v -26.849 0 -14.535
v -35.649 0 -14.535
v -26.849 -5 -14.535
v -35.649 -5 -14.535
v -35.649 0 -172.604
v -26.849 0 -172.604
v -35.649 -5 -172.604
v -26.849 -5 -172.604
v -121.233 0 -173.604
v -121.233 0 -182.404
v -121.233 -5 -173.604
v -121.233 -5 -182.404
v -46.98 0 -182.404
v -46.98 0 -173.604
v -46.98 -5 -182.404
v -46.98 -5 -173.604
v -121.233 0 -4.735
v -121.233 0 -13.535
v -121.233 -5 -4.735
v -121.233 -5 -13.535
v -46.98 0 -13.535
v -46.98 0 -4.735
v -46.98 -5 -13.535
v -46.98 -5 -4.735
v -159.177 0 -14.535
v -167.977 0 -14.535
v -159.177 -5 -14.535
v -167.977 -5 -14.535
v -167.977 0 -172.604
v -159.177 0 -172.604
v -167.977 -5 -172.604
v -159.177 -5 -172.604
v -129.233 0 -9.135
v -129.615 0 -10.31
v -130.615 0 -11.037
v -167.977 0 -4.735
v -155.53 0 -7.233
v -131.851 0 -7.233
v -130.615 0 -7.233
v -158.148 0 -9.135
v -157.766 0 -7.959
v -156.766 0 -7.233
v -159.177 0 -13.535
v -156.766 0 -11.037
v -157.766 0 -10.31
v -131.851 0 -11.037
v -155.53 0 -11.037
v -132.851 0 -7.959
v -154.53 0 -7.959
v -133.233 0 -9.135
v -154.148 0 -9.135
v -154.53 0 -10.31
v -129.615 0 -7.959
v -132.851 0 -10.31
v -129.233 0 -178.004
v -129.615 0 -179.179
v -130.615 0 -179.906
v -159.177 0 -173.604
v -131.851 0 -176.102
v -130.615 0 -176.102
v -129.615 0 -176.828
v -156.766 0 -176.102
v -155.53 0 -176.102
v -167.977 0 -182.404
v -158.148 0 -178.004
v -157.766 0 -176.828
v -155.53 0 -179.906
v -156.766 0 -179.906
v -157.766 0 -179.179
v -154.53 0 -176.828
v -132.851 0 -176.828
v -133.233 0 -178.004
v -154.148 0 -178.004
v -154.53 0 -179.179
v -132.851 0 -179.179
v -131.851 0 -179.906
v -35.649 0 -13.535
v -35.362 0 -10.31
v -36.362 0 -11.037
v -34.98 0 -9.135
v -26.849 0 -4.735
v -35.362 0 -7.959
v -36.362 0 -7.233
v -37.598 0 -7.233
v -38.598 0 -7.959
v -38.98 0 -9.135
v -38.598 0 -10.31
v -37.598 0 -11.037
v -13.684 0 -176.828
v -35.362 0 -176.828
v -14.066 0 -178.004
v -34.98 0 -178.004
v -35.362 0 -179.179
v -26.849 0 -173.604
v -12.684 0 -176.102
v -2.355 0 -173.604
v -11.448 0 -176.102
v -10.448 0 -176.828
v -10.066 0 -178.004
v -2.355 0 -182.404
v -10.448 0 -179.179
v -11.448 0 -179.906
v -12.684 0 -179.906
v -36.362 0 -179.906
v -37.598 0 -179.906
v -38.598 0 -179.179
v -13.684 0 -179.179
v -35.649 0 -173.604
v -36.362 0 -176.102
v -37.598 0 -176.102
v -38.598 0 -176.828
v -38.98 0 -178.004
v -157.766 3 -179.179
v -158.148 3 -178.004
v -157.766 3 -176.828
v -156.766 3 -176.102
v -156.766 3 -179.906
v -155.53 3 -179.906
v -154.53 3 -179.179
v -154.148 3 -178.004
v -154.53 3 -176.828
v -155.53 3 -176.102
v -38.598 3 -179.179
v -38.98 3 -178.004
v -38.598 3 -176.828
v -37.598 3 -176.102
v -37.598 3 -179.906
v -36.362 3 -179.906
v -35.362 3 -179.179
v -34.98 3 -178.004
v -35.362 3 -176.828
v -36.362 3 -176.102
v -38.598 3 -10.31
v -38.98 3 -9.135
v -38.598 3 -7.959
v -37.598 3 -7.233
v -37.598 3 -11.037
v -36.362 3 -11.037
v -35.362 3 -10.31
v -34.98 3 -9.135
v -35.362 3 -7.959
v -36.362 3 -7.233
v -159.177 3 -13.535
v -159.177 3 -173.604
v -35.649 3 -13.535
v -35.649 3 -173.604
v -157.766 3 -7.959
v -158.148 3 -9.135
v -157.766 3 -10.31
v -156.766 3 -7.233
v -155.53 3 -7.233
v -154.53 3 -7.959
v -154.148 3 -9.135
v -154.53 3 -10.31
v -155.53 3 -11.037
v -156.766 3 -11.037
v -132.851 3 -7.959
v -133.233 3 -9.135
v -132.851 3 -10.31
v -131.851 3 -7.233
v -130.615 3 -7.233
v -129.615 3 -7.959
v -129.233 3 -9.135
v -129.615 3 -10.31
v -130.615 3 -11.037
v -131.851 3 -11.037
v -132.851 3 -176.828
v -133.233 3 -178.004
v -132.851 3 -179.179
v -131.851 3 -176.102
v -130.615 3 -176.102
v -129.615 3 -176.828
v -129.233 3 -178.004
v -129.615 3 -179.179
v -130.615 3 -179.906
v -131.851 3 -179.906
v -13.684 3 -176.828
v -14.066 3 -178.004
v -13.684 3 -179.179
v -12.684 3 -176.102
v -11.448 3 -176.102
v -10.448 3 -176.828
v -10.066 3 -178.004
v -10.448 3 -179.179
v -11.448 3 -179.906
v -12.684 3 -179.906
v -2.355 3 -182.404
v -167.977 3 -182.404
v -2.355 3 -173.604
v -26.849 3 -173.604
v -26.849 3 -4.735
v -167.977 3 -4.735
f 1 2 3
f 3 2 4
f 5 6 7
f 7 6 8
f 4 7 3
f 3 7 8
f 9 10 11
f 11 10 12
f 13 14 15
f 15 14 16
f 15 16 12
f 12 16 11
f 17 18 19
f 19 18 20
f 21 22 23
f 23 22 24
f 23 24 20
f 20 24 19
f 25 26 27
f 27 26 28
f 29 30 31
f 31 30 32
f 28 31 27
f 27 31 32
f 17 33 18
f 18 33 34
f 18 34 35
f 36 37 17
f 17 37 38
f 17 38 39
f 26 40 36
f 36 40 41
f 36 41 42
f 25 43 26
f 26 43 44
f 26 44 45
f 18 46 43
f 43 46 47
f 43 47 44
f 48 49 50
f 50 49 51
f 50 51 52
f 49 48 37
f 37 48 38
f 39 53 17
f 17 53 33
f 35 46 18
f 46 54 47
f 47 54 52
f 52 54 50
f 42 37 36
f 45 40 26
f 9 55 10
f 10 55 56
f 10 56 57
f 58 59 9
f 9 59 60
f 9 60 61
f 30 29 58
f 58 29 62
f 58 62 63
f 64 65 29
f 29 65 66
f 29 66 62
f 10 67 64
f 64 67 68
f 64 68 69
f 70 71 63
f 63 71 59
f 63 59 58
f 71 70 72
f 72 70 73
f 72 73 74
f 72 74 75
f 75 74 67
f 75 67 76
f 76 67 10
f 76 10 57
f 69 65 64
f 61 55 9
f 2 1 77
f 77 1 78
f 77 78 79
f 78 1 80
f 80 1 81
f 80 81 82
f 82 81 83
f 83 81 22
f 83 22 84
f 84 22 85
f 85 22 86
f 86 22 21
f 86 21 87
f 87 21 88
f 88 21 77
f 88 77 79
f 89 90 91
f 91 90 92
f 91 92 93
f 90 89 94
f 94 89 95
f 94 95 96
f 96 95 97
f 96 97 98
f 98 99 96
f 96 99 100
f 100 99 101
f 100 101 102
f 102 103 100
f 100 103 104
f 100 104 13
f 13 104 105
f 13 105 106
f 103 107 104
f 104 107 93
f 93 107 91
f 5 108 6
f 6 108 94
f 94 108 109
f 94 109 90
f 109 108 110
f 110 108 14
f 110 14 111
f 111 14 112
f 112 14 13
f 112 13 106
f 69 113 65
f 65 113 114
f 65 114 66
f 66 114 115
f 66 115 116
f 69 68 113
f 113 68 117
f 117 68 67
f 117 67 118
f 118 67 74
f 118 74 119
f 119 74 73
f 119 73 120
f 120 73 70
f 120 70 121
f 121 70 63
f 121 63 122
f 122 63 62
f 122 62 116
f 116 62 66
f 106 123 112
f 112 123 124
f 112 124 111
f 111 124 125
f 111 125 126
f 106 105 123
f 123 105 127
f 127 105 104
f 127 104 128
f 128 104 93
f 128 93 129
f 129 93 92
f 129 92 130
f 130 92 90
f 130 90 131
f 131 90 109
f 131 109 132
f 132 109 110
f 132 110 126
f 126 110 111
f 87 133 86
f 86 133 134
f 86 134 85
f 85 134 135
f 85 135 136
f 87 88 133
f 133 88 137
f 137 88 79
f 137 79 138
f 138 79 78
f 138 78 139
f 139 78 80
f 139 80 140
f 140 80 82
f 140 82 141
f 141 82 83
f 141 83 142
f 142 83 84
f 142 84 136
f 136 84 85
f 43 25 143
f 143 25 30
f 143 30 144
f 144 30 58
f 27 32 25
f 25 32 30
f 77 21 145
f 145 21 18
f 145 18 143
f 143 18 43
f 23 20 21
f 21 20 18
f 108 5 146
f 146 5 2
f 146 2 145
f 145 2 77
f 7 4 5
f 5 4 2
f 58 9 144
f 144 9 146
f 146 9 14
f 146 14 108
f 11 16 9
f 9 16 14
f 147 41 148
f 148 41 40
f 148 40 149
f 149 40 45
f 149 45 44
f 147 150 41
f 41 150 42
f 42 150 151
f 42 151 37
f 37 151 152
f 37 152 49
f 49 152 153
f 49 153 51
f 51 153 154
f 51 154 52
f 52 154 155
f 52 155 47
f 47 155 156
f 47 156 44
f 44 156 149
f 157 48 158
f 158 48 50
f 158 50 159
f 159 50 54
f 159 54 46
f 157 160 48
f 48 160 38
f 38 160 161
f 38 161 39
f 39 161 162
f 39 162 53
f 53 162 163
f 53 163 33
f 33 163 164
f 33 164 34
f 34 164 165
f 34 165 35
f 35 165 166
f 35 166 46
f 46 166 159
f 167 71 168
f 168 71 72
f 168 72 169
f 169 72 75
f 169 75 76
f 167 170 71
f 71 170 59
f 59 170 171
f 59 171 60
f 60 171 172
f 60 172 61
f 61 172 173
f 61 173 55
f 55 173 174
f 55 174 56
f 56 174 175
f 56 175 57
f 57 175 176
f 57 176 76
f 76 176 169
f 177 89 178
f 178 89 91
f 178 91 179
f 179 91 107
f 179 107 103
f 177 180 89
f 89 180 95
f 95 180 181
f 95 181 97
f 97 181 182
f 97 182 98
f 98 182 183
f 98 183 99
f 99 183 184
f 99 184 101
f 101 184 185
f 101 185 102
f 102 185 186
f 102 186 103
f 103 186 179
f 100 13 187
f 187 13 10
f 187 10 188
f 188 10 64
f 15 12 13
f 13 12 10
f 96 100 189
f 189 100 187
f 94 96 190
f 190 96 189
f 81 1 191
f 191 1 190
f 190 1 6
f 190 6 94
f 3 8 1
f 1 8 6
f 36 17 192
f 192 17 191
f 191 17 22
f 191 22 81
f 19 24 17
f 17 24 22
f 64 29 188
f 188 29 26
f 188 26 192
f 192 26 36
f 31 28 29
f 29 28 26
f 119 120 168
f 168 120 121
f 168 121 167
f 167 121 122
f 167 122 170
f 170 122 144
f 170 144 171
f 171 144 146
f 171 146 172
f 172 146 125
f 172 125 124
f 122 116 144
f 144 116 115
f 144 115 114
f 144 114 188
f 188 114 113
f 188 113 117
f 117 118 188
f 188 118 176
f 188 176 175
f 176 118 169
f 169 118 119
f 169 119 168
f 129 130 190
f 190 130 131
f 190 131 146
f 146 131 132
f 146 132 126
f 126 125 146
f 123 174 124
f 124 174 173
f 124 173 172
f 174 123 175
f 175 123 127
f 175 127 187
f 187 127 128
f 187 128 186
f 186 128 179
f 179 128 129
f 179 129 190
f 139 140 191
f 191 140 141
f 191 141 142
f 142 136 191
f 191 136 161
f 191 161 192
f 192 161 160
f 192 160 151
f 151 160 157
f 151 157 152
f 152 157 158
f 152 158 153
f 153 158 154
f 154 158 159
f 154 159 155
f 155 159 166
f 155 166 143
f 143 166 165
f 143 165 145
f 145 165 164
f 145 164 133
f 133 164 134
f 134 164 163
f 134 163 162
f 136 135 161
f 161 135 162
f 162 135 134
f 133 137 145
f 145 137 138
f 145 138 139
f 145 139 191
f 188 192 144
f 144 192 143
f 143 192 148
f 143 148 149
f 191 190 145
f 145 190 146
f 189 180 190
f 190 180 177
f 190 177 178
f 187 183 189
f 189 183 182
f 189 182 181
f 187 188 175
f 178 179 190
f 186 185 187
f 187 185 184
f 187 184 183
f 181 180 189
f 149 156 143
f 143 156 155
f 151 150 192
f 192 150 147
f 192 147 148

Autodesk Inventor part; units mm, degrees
ref_plane "YZ Plane" through (0, 0, 0) normal (1, 0, 0) x (0, 1, 0)
ref_plane "XZ Plane" through (0, 0, 0) normal (0, 1, 0) x (-1, 0, 0)
ref_plane "XY Plane" through (0, 0, 0) normal (0, 0, 1) x (1, 0, 0)
sketch "Boceto1" plane through (0, 0, 0) normal (0, 1, 0) x (-1, 0, 0)
  line L0 (0, 0) -> (262.4667, 0) construction
  line L1 (262.4667, 0) -> (262.4667, -371.2633) construction
  line L2 (262.4667, -371.2633) -> (0, -371.2633) construction
  line L3 (0, -371.2633) -> (0, 0) construction
  line L4 (167.9771, -4.7349) -> (167.9771, -13.5349)
  line L5 (167.9771, -13.5349) -> (2.3545, -13.5349)
  line L6 (2.3545, -13.5349) -> (2.3545, -4.7349)
  line L7 (2.3545, -4.7349) -> (167.9771, -4.7349)
  line L8 (143.5689, -182.4039) -> (2.3545, -182.4039)
  line L9 (2.3545, -182.4039) -> (2.3545, -173.6039)
  line L10 (2.3545, -173.6039) -> (167.9771, -173.6039)
  line L11 (167.9771, -173.6039) -> (167.9771, -182.4039)
  circle A0 centre (156.1475, -9.1349) radius 2
  circle A1 centre (131.2333, -9.1349) radius 2
  circle A2 centre (12.066, -9.1349) radius 2
  line L12 (167.9771, -173.6039) -> (167.9771, -182.4039)
  line L13 (167.9771, -182.4039) -> (2.3545, -182.4039)
  line L14 (2.3545, -182.4039) -> (2.3545, -173.6039)
  line L15 (2.3545, -173.6039) -> (167.9771, -173.6039)
  circle A3 centre (131.2333, -178.0039) radius 2
  circle A4 centre (12.066, -178.0039) radius 2
  line L16 (167.9771, -13.5349) -> (167.9771, -182.4039)
  line L17 (2.3545, -13.4261) -> (2.3545, -174.0455)
  line L18 (11.1545, -13.4261) -> (11.1545, -174.0455)
  line L19 (159.1771, -13.5349) -> (159.1771, -182.4039)
  line L20 (26.8486, -4.7349) -> (26.8486, -49.7349)
  line L21 (26.8486, -49.7349) -> (2.3545, -49.7349)
  line L22 (35.6486, -4.7349) -> (35.6486, -173.6039)
  line L23 (35.6486, -58.5349) -> (2.3545, -58.5349)
  line L24 (2.3545, -59.0349) -> (36.1486, -59.0349)
  line L25 (36.1486, -173.6039) -> (36.1486, -4.7349)
  line L26 (2.3545, -67.8349) -> (44.9486, -67.8349)
  line L27 (44.9486, -67.8349) -> (44.9486, -4.7349)
  line L28 (26.8486, -49.7349) -> (26.8486, -173.6039)
  line L29 (19.9545, -13.4261) -> (19.9545, -174.0455)
  line L30 (9.3545, -13.4261) -> (9.3545, -174.0455)
  point P0 (11.1545, -173.6039)
  point P1 (11.1545, -13.5349)
  point P2 (159.1771, -173.6039)
  point P3 (11.1545, -58.5349)
  point P4 (35.6486, -13.5349)
  point P5 (11.1545, -67.8349)
  point P6 (26.8486, -67.8349)
  point P7 (36.1486, -67.8349)
  dimension "d2" = 8.8
  dimension "d3" = 8.8
  dimension "d5" = 8.8
  dimension "d6" = 8.8
  dimension "d8" = 4
  dimension "d9" = 4
  dimension "d10" = 4
  dimension "d11" = 8.8
  dimension "d12" = 8.8
  dimension "d14" = 4
  dimension "d15" = 4
  dimension "d21" = 8.8
  dimension "d22" = 8.8
  dimension "d26" = 45
  dimension "d27" = 8.8
  dimension "d53" = 0.5
  dimension "d54" = 8.8
  dimension "d59" = 8.8
  dimension "d60" = 7
extrude "Extrusión1" add sketch "Boceto1" along normal blind 3 contours L4 L5 L27 L7 | L16 L10 L19 L5 | L27 L5 L25 L7 | L11 L13 L19 L10 | L25 L5 L22 L7 | L19 L13 L8 L9 L10 | L22 L5 L20 L7 | L22 L23 L28 L20 L5 | L10 L28 L26 L22 | L22 L24 L28 L23 | L22 L26 L28 L24
sketch "Boceto2" plane through (0, 3, 0) normal (0, 1, 0) x (1, 0, 0)
  line L0 (-2.3545, 182.4039) -> (-167.9771, 182.4039) projected
  line L1 (-167.9771, 182.4039) -> (-167.9771, 4.7349) projected
  line L2 (-167.9771, 4.7349) -> (-26.8486, 4.7349) projected
  circle A0 centre (-12.066, 178.0039) radius 2
  circle A1 centre (-131.2333, 178.0039) radius 2
  circle A2 centre (-156.1475, 9.1349) radius 2
  circle A3 centre (-131.2333, 9.1349) radius 2
  line L3 (-11.1545, 173.6039) -> (-11.1545, 67.8349) projected
  line L4 (-35.6486, 13.5349) -> (-159.1771, 13.5349) projected
  line L5 (-159.1771, 13.5349) -> (-159.1771, 173.6039) projected
  line L6 (-159.1771, 173.6039) -> (-35.6486, 173.6039) projected
  line L7 (-131.2333, 9.1349) -> (-119.9333, 9.1349)
  line L8 (-119.9333, 9.1349) -> (-119.9333, 13.5349)
  line L9 (-119.9333, 4.7349) -> (-119.9333, 9.1349)
  line L10 (-167.9771, 4.7349) -> (-26.8486, 4.7349) projected
  line L11 (-26.8486, 4.7349) -> (-26.8486, 173.6039) projected
  line L12 (-26.8486, 49.7349) -> (-2.3545, 49.7349) projected
  line L13 (-2.3545, 173.6039) -> (-2.3545, 182.4039) projected
  line L14 (-11.1545, 58.5349) -> (-35.6486, 58.5349) projected
  line L15 (-35.6486, 173.6039) -> (-35.6486, 13.5349) projected
  circle A4 centre (-36.9802, 178.0039) radius 2
  circle A5 centre (-156.1475, 178.0039) radius 2
  circle A6 centre (-156.1475, 9.1349) radius 2
  line L16 (-156.1475, 9.1349) -> (-144.8475, 9.1349)
  line L17 (-144.8475, 9.1349) -> (-144.8475, 13.5349)
  line L18 (-144.8475, 4.7349) -> (-144.8475, 9.1349)
  line L19 (-36.9802, 178.0039) -> (-36.9802, 9.1349)
  line L20 (-36.9802, 178.0039) -> (131.8887, 178.0039) construction
  circle A7 centre (-36.9802, 9.1349) radius 2
  point P0 (0, 0)
  point P1 (-2.3545, 4.7349)
  point P2 (-26.8486, 59.0349)
  point P3 (-2.3545, 59.0349)
  point P4 (-35.6486, 67.8349)
  dimension "d25" = 11.3
  dimension "d29" = 11.3
  dimension "d30" = 90
  dimension "d31" = 4
hole "Agujero1" at (-36.9802, 3, -9.1349) at (-36.9802, 3, -178.0039) at (-156.1475, 3, -178.0039) direction (0, -1, 0) diameter 4 end through all
sketch "Boceto3" plane through (0, 0, 0) normal (0, -1, 0) x (1, 0, 0)
  circle A0 centre (-156.1475, -178.0039) radius 2 projected
  circle A1 centre (-36.9802, -178.0039) radius 2 projected
  circle A2 centre (-36.9802, -9.1349) radius 2 projected
  line L0 (-167.9771, -182.4039) -> (-167.9771, -4.7349) projected
  line L1 (-2.3545, -182.4039) -> (-167.9771, -182.4039) projected
  line L2 (-2.3545, -173.6039) -> (-2.3545, -182.4039) projected
  line L3 (-26.8486, -4.7349) -> (-26.8486, -173.6039) projected
  line L4 (-167.9771, -4.7349) -> (-26.8486, -4.7349) projected
  circle A3 centre (-156.1475, -9.1349) radius 2 projected
  circle A4 centre (-131.2333, -9.1349) radius 2 projected
  line L5 (-159.1771, -173.6039) -> (-11.1545, -173.6039)
  line L6 (-159.1771, -13.5349) -> (-159.1771, -173.6039) projected
  line L7 (-35.6486, -13.5349) -> (-159.1771, -13.5349) projected
  line L8 (-35.6486, -173.6039) -> (-35.6486, -13.5349) projected
  circle A5 centre (-131.2333, -178.0039) radius 2 projected
  circle A6 centre (-12.066, -178.0039) radius 2 projected
  line L9 (-36.9802, -9.1349) -> (-46.9802, -9.1349)
  line L10 (-46.9802, -9.1349) -> (-46.9802, -2.3988)
  line L11 (-46.9802, -2.3988) -> (-46.9802, -182.4039)
  line L12 (-131.2333, -9.1349) -> (-121.2333, -9.1349)
  line L13 (-121.2333, -9.1349) -> (-121.2333, 4.8486)
  line L14 (-121.2333, 4.8486) -> (-121.2333, -182.4039)
  line L15 (-159.1771, -173.6039) -> (-167.9771, -173.6039)
  line L16 (-159.1771, -13.5349) -> (-167.9771, -13.5349)
  line L17 (-35.932, -13.5349) -> (-26.8486, -13.5349)
  line L18 (-11.1545, -173.6039) -> (-2.3545, -173.6039)
  line L19 (-2.3545, -172.6039) -> (-11.1545, -172.6039)
  line L20 (-11.1545, -172.6039) -> (-159.1771, -172.6039)
  line L21 (-159.1771, -172.6039) -> (-167.9771, -172.6039)
  line L22 (-35.932, -14.5349) -> (-26.8486, -14.5349)
  line L23 (-159.1771, -14.5349) -> (-167.9771, -14.5349)
  circle A7 centre (-156.1475, -178.0039) radius 2 projected
  circle A8 centre (-36.9802, -178.0039) radius 2 projected
  circle A9 centre (-36.9802, -9.1349) radius 2 projected
  line L24 (-167.9771, -182.4039) -> (-167.9771, -4.7349) projected
  line L25 (-2.3545, -182.4039) -> (-167.9771, -182.4039) projected
  line L26 (-2.3545, -173.6039) -> (-2.3545, -182.4039) projected
  line L27 (-26.8486, -4.7349) -> (-26.8486, -173.6039) projected
  line L28 (-167.9771, -4.7349) -> (-26.8486, -4.7349) projected
  circle A10 centre (-12.066, -178.0039) radius 2 projected
  circle A11 centre (-131.2333, -178.0039) radius 2 projected
  circle A12 centre (-131.2333, -9.1349) radius 2 projected
  circle A13 centre (-156.1475, -9.1349) radius 2 projected
  line L29 (-26.8486, -173.6039) -> (-2.3545, -173.6039) projected
  line L30 (-159.1771, -13.5349) -> (-159.1771, -173.6039) projected
  line L31 (-35.6486, -13.5349) -> (-159.1771, -13.5349) projected
  line L32 (-35.6486, -173.6039) -> (-35.6486, -13.5349) projected
  line L33 (-159.1771, -173.6039) -> (-35.6486, -173.6039) projected
  circle A14 centre (-156.1475, -178.0039) radius 2 projected
  circle A15 centre (-36.9802, -178.0039) radius 2 projected
  circle A16 centre (-36.9802, -9.1349) radius 2 projected
  line L34 (-167.9771, -182.4039) -> (-167.9771, -4.7349) projected
  line L35 (-2.3545, -182.4039) -> (-167.9771, -182.4039) projected
  line L36 (-2.3545, -173.6039) -> (-2.3545, -182.4039) projected
  line L37 (-26.8486, -173.6039) -> (-2.3545, -173.6039) projected
  line L38 (-26.8486, -4.7349) -> (-26.8486, -173.6039) projected
  line L39 (-167.9771, -4.7349) -> (-26.8486, -4.7349) projected
  circle A17 centre (-12.066, -178.0039) radius 2 projected
  circle A18 centre (-131.2333, -178.0039) radius 2 projected
  circle A19 centre (-131.2333, -9.1349) radius 2 projected
  circle A20 centre (-156.1475, -9.1349) radius 2 projected
  line L40 (-159.1771, -173.6039) -> (-35.6486, -173.6039) projected
  line L41 (-159.1771, -13.5349) -> (-159.1771, -173.6039) projected
  line L42 (-35.6486, -13.5349) -> (-159.1771, -13.5349) projected
  line L43 (-35.6486, -173.6039) -> (-35.6486, -13.5349) projected
  point P0 (0, 0)
  point P1 (-35.6486, -58.5349)
  point P2 (-35.6486, -14.5349)
  point P3 (-121.2333, -173.6039)
  point P4 (-46.9802, -173.6039)
  point P5 (-121.2333, -13.5349)
  point P6 (-46.9802, -13.5349)
  point P7 (-46.9802, -4.7349)
  point P8 (-121.2333, -4.7349)
  point P9 (-26.8486, -59.0349)
  point P10 (-35.6486, -67.8349)
  point P11 (-35.6486, -172.6039)
  point P12 (-26.8486, -172.6039)
  dimension "d39" = 10
  dimension "d40" = 10
  dimension "d41" = 1
  dimension "d42" = 1
  dimension "d43" = 1
extrude "Extrusión2" add sketch "Boceto3" along normal blind 5 contours L11 L7 L14 L13 L4 L10 | L11 L1 L14 L5 | L8 L22 L3 L20 | L6 L21 L0 L23
properties part number "Base PCB"
